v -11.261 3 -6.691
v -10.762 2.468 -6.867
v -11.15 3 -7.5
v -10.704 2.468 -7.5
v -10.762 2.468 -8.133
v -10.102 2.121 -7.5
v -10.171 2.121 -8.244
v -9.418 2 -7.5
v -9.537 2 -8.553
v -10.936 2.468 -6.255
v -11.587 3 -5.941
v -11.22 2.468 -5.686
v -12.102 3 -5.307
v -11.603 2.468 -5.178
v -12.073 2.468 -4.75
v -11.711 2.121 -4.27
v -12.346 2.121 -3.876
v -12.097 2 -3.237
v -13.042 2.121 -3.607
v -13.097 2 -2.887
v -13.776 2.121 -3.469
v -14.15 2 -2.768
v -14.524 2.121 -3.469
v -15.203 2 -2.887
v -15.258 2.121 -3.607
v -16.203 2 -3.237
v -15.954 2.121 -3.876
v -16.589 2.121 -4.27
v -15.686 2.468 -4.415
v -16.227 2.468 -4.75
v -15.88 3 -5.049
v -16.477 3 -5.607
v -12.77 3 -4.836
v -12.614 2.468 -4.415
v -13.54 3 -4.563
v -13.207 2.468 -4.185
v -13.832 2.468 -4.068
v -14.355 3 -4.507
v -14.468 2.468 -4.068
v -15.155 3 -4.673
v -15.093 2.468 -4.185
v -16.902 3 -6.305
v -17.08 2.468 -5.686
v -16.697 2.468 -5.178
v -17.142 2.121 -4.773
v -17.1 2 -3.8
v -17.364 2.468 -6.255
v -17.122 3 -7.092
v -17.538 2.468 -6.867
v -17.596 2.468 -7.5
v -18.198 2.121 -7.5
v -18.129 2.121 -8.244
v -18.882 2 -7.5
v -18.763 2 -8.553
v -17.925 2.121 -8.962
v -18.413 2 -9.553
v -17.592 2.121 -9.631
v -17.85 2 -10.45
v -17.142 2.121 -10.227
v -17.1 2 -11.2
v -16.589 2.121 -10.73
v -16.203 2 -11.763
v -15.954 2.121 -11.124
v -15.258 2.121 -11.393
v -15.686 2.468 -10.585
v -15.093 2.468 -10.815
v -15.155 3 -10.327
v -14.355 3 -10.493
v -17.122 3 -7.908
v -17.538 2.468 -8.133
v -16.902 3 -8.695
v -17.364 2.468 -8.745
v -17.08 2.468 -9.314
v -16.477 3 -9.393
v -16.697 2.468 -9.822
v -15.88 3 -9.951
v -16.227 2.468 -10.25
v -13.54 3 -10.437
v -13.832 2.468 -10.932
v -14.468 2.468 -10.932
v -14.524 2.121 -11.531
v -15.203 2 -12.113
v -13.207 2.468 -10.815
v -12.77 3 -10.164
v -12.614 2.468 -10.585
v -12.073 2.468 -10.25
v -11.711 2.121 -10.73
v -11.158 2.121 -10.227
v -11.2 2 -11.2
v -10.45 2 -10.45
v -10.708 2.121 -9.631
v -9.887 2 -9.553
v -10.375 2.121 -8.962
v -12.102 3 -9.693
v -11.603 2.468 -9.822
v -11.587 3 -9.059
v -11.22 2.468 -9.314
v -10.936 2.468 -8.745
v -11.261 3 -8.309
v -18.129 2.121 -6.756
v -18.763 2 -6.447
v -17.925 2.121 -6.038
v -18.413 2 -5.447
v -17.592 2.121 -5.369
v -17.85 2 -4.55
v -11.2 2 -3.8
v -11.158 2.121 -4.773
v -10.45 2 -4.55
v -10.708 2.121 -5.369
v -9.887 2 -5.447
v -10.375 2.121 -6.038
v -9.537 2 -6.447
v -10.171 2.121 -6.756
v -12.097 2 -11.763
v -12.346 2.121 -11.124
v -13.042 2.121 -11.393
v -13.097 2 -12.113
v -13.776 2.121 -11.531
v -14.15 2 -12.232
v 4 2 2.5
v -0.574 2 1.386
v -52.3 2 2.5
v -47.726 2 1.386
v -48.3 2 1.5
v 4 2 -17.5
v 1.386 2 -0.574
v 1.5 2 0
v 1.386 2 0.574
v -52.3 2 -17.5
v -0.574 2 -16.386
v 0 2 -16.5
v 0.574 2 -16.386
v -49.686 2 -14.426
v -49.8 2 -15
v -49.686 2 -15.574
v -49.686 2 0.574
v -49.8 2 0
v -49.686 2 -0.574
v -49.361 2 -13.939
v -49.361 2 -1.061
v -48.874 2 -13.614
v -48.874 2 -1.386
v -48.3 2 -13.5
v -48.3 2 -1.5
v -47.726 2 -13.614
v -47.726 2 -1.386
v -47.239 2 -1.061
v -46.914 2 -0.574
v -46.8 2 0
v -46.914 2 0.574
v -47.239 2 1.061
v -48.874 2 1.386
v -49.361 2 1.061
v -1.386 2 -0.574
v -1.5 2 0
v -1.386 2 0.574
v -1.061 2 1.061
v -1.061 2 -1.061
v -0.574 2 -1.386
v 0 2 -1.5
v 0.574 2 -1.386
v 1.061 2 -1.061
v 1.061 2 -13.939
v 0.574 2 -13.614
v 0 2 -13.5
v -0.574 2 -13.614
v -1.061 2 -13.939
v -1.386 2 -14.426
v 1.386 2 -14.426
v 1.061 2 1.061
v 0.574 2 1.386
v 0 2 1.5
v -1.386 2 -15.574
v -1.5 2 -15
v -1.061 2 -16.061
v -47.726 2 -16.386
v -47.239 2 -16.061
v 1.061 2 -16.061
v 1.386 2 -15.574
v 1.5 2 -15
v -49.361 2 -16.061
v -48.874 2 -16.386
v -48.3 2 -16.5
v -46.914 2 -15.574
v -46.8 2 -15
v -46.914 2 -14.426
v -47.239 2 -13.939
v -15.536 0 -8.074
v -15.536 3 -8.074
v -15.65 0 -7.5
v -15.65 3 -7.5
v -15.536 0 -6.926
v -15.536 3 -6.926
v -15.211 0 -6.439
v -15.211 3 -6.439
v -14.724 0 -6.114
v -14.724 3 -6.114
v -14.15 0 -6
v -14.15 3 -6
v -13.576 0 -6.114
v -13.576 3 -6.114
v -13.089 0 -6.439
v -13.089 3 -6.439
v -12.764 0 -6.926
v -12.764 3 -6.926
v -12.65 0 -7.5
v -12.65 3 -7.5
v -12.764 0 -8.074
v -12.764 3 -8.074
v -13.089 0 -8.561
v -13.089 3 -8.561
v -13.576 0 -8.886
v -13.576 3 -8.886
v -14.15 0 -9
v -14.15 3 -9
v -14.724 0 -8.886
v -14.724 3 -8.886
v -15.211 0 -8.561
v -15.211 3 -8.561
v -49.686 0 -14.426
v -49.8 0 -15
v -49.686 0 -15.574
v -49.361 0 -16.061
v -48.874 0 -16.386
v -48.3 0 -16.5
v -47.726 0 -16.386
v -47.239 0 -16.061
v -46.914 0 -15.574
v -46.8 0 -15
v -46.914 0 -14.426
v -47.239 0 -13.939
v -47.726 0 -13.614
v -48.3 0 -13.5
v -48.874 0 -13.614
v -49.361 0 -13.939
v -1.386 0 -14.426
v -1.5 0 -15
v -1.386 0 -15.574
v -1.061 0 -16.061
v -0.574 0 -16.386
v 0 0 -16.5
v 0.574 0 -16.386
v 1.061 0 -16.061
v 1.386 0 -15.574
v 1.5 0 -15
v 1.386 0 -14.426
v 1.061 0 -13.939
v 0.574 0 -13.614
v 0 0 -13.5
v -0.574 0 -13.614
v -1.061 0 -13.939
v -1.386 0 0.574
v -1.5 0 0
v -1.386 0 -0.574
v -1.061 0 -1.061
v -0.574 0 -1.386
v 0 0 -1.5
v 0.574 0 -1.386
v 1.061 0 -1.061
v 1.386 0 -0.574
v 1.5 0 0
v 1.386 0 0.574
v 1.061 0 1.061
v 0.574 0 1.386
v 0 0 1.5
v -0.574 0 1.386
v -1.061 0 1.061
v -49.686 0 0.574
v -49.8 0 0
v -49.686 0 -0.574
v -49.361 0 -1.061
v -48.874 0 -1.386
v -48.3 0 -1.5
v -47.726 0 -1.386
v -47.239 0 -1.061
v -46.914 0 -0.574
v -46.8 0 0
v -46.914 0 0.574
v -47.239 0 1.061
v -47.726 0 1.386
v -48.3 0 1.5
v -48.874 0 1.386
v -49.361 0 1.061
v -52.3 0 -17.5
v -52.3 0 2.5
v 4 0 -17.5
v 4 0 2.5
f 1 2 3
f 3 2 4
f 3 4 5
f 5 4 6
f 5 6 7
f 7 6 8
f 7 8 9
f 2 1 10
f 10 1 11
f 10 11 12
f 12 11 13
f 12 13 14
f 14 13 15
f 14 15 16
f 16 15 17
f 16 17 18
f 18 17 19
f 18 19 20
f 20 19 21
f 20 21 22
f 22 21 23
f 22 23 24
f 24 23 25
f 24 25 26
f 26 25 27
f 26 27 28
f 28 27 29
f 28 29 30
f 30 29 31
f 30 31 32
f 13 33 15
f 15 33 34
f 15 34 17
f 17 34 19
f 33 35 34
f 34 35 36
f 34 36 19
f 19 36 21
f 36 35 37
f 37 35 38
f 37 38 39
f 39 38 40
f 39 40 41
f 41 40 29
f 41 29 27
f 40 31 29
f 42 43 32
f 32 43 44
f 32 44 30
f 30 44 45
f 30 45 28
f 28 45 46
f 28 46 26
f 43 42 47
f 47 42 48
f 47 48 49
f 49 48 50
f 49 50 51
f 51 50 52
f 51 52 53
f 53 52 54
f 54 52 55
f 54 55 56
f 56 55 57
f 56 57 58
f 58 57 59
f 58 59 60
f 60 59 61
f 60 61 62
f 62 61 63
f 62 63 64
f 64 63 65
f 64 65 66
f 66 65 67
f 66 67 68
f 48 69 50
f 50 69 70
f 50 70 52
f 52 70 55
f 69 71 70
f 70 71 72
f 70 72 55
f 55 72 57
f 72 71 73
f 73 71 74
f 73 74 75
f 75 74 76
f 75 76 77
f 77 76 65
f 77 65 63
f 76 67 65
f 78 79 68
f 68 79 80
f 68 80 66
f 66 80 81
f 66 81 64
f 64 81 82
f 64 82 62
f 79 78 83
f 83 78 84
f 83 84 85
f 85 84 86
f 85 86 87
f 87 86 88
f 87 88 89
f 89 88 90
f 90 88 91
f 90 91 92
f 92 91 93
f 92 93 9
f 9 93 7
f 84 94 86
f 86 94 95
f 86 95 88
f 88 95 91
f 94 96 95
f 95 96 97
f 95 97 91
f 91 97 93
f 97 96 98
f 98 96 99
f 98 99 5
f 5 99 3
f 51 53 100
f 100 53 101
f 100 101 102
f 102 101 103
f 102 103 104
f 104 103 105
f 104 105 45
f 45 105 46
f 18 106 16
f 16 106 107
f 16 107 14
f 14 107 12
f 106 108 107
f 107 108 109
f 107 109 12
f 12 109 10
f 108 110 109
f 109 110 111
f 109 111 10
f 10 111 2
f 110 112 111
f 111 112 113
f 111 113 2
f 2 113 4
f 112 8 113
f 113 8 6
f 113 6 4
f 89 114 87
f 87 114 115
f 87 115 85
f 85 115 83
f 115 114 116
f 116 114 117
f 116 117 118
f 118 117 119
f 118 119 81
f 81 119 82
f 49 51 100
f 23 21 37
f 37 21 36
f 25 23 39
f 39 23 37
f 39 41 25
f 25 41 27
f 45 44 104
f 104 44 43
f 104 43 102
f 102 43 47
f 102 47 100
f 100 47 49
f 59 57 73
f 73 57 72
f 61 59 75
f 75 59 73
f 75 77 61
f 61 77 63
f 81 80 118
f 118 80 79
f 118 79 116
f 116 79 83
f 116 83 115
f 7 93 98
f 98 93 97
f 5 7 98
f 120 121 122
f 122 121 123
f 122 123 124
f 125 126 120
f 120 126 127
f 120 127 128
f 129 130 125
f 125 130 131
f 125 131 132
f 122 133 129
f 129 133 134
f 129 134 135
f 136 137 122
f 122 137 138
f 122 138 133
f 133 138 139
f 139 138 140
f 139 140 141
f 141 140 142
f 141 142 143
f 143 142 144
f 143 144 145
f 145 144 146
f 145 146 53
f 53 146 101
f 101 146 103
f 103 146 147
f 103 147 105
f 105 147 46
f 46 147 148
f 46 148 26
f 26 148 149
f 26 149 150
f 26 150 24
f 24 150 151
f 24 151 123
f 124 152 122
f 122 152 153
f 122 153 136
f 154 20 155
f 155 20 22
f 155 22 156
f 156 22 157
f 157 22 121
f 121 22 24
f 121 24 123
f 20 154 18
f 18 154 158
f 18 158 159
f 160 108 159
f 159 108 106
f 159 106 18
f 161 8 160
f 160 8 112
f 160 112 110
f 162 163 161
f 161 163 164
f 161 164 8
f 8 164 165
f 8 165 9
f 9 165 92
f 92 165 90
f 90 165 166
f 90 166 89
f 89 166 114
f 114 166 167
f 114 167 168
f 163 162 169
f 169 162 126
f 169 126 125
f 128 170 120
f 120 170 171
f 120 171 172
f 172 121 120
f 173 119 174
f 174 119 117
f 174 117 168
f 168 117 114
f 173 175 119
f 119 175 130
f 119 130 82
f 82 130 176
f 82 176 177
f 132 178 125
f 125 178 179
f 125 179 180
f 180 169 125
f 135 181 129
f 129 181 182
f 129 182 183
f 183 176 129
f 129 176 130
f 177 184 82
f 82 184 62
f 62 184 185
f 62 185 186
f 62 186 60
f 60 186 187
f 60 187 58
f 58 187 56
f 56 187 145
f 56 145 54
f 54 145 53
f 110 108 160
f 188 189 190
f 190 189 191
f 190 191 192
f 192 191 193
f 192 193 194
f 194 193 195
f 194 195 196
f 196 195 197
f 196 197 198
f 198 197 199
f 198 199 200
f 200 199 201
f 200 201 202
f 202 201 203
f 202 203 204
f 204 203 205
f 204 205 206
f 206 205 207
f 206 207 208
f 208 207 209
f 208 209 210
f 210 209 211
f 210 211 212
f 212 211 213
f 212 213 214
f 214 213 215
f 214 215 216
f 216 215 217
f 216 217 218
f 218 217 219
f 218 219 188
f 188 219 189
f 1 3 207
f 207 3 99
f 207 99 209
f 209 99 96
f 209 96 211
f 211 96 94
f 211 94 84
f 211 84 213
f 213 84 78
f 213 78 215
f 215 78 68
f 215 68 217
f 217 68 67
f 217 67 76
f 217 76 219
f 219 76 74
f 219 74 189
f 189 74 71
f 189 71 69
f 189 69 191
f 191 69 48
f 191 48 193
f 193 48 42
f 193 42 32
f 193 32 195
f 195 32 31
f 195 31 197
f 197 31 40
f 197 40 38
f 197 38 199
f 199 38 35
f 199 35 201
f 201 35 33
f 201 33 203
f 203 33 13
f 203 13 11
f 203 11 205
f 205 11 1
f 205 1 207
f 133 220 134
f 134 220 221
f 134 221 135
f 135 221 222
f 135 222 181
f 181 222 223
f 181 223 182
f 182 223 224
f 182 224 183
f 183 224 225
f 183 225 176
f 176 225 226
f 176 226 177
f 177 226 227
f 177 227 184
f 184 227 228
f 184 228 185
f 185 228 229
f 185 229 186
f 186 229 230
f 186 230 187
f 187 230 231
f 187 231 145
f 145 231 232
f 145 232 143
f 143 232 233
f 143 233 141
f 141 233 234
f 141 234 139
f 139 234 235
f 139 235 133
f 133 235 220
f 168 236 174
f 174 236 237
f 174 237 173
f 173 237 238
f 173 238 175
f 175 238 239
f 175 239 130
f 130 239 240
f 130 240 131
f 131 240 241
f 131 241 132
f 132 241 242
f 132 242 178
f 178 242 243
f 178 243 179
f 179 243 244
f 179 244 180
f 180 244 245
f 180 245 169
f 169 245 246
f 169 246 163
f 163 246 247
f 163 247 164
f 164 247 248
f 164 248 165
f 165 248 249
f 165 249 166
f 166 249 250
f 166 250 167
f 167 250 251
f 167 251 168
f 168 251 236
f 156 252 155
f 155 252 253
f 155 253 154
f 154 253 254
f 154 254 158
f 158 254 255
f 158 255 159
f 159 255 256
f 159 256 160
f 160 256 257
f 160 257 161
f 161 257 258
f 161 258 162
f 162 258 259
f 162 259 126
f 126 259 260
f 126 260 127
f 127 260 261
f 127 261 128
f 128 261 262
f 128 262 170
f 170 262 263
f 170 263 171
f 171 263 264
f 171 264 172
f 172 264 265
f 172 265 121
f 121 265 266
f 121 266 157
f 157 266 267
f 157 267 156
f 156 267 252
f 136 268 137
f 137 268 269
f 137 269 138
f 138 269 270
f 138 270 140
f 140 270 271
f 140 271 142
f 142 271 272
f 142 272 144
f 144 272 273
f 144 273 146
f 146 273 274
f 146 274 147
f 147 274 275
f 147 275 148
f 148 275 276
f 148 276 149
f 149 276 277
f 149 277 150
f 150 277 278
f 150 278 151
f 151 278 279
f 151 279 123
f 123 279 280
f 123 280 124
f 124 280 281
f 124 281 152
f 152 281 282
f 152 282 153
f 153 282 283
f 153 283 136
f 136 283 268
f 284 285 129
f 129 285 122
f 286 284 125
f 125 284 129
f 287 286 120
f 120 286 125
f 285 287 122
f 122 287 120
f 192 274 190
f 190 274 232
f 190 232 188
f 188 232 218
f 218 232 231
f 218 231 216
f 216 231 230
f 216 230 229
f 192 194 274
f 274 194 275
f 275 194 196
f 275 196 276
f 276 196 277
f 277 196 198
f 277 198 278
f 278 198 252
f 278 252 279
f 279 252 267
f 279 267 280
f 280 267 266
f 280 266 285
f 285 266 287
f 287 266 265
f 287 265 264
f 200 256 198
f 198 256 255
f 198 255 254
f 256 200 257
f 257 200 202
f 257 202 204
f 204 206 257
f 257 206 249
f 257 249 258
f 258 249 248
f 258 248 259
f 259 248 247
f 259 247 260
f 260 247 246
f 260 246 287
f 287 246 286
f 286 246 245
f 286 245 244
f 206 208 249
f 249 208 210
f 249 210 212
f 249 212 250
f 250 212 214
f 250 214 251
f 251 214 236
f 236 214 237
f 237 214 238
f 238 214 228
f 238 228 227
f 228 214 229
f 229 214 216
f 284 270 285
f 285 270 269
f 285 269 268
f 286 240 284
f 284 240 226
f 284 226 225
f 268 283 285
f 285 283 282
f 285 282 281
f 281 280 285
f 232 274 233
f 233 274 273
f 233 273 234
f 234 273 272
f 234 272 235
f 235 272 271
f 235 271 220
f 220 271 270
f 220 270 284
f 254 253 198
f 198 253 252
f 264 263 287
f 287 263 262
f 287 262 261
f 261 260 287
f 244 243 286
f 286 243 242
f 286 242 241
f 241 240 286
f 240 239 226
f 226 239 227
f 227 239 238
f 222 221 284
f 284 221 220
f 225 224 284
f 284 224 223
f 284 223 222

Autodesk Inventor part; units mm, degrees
ref_plane "YZ Plane" through (0, 0, 0) normal (1, 0, 0) x (0, 1, 0)
ref_plane "XZ Plane" through (0, 0, 0) normal (0, 1, 0) x (-1, 0, 0)
ref_plane "XY Plane" through (0, 0, 0) normal (0, 0, 1) x (1, 0, 0)
sketch "Sketch1" plane through (0, 0, 0) normal (0, 1, 0) x (-1, 0, 0)
  line L0 (0, 0) -> (48.3, 0)
  line L1 (48.3, 0) -> (48.3, -15)
  line L2 (48.3, -15) -> (0, -15)
  line L3 (0, -15) -> (0, 0)
  circle A0 centre (48.3, 0) radius 1.5
  circle A1 centre (48.3, -15) radius 1.5
  circle A2 centre (0, 0) radius 1.5
  circle A3 centre (0, -15) radius 1.5
  line L4 (48.3, -15) -> (52.3, -15)
  line L5 (52.3, -15) -> (52.3, -17.5)
  line L6 (52.3, -17.5) -> (48.3, -17.5)
  line L7 (48.3, -17.5) -> (48.3, -15)
  line L8 (0, 0) -> (-4, 0)
  line L9 (-4, 0) -> (-4, 2.5)
  line L10 (-4, 2.5) -> (0, 2.5)
  line L11 (0, 2.5) -> (0, 0)
  line L12 (-4, 2.5) -> (52.3, 2.5)
  line L13 (52.3, 2.5) -> (52.3, -17.5)
  line L14 (52.3, -17.5) -> (-4, -17.5)
  line L15 (-4, -17.5) -> (-4, 2.5)
  dimension "d0" = 48.3
  dimension "d1" = 15
  dimension "d2" = 3
  dimension "d3" = 3
  dimension "d4" = 3
  dimension "d5" = 3
  dimension "d6" = 4
  dimension "d7" = 2.5
  dimension "d8" = 4
  dimension "d9" = 2.5
extrude "Extrusion1" add sketch "Sketch1" along normal blind 2 contours A2 L11 L12 L13 L4 A1 L1 A0 L0 | L0 A0 L1 A1 L2 A3 L3 A2 | L3 A3 L2 A1 L7 L14 L15 L8 A2 | L8 L9 L10 L11 A2 | L7 A1 L4 L5 L6
sketch "Sketch2" plane through (0, 2, 0) normal (0, 1, 0) x (1, 0, 0)
  line L0 (4, -2.5) -> (4, 17.5) projected
  line L1 (4, -2.5) -> (-14.15, -2.5)
  line L2 (-14.15, -2.5) -> (-14.15, 7.5)
  line L3 (-14.15, 7.5) -> (4, 7.5)
  line L4 (4, 7.5) -> (4, -2.5)
  circle A0 centre (-14.15, 7.5) radius 3
  circle A1 centre (-14.15, 7.5) radius 1.5
  point P0 (0, 0)
  dimension "d12" = 18.15
  dimension "d13" = 10
  dimension "d14" = 6
  dimension "d19" = 3
extrude "Extrusion2" add sketch "Sketch2" along normal blind 1 contours A0 L2 A1 L3 | L3 A1 L2 A0
extrude "Extrusion3" cut sketch "Sketch2" against normal blind 3 contours A1 L2 L3 | L3 L2 A1
fillet "Fillet2" radius 2 1 edges at (-17.15, 2, -7.5)
properties part number "back_servo_support"
